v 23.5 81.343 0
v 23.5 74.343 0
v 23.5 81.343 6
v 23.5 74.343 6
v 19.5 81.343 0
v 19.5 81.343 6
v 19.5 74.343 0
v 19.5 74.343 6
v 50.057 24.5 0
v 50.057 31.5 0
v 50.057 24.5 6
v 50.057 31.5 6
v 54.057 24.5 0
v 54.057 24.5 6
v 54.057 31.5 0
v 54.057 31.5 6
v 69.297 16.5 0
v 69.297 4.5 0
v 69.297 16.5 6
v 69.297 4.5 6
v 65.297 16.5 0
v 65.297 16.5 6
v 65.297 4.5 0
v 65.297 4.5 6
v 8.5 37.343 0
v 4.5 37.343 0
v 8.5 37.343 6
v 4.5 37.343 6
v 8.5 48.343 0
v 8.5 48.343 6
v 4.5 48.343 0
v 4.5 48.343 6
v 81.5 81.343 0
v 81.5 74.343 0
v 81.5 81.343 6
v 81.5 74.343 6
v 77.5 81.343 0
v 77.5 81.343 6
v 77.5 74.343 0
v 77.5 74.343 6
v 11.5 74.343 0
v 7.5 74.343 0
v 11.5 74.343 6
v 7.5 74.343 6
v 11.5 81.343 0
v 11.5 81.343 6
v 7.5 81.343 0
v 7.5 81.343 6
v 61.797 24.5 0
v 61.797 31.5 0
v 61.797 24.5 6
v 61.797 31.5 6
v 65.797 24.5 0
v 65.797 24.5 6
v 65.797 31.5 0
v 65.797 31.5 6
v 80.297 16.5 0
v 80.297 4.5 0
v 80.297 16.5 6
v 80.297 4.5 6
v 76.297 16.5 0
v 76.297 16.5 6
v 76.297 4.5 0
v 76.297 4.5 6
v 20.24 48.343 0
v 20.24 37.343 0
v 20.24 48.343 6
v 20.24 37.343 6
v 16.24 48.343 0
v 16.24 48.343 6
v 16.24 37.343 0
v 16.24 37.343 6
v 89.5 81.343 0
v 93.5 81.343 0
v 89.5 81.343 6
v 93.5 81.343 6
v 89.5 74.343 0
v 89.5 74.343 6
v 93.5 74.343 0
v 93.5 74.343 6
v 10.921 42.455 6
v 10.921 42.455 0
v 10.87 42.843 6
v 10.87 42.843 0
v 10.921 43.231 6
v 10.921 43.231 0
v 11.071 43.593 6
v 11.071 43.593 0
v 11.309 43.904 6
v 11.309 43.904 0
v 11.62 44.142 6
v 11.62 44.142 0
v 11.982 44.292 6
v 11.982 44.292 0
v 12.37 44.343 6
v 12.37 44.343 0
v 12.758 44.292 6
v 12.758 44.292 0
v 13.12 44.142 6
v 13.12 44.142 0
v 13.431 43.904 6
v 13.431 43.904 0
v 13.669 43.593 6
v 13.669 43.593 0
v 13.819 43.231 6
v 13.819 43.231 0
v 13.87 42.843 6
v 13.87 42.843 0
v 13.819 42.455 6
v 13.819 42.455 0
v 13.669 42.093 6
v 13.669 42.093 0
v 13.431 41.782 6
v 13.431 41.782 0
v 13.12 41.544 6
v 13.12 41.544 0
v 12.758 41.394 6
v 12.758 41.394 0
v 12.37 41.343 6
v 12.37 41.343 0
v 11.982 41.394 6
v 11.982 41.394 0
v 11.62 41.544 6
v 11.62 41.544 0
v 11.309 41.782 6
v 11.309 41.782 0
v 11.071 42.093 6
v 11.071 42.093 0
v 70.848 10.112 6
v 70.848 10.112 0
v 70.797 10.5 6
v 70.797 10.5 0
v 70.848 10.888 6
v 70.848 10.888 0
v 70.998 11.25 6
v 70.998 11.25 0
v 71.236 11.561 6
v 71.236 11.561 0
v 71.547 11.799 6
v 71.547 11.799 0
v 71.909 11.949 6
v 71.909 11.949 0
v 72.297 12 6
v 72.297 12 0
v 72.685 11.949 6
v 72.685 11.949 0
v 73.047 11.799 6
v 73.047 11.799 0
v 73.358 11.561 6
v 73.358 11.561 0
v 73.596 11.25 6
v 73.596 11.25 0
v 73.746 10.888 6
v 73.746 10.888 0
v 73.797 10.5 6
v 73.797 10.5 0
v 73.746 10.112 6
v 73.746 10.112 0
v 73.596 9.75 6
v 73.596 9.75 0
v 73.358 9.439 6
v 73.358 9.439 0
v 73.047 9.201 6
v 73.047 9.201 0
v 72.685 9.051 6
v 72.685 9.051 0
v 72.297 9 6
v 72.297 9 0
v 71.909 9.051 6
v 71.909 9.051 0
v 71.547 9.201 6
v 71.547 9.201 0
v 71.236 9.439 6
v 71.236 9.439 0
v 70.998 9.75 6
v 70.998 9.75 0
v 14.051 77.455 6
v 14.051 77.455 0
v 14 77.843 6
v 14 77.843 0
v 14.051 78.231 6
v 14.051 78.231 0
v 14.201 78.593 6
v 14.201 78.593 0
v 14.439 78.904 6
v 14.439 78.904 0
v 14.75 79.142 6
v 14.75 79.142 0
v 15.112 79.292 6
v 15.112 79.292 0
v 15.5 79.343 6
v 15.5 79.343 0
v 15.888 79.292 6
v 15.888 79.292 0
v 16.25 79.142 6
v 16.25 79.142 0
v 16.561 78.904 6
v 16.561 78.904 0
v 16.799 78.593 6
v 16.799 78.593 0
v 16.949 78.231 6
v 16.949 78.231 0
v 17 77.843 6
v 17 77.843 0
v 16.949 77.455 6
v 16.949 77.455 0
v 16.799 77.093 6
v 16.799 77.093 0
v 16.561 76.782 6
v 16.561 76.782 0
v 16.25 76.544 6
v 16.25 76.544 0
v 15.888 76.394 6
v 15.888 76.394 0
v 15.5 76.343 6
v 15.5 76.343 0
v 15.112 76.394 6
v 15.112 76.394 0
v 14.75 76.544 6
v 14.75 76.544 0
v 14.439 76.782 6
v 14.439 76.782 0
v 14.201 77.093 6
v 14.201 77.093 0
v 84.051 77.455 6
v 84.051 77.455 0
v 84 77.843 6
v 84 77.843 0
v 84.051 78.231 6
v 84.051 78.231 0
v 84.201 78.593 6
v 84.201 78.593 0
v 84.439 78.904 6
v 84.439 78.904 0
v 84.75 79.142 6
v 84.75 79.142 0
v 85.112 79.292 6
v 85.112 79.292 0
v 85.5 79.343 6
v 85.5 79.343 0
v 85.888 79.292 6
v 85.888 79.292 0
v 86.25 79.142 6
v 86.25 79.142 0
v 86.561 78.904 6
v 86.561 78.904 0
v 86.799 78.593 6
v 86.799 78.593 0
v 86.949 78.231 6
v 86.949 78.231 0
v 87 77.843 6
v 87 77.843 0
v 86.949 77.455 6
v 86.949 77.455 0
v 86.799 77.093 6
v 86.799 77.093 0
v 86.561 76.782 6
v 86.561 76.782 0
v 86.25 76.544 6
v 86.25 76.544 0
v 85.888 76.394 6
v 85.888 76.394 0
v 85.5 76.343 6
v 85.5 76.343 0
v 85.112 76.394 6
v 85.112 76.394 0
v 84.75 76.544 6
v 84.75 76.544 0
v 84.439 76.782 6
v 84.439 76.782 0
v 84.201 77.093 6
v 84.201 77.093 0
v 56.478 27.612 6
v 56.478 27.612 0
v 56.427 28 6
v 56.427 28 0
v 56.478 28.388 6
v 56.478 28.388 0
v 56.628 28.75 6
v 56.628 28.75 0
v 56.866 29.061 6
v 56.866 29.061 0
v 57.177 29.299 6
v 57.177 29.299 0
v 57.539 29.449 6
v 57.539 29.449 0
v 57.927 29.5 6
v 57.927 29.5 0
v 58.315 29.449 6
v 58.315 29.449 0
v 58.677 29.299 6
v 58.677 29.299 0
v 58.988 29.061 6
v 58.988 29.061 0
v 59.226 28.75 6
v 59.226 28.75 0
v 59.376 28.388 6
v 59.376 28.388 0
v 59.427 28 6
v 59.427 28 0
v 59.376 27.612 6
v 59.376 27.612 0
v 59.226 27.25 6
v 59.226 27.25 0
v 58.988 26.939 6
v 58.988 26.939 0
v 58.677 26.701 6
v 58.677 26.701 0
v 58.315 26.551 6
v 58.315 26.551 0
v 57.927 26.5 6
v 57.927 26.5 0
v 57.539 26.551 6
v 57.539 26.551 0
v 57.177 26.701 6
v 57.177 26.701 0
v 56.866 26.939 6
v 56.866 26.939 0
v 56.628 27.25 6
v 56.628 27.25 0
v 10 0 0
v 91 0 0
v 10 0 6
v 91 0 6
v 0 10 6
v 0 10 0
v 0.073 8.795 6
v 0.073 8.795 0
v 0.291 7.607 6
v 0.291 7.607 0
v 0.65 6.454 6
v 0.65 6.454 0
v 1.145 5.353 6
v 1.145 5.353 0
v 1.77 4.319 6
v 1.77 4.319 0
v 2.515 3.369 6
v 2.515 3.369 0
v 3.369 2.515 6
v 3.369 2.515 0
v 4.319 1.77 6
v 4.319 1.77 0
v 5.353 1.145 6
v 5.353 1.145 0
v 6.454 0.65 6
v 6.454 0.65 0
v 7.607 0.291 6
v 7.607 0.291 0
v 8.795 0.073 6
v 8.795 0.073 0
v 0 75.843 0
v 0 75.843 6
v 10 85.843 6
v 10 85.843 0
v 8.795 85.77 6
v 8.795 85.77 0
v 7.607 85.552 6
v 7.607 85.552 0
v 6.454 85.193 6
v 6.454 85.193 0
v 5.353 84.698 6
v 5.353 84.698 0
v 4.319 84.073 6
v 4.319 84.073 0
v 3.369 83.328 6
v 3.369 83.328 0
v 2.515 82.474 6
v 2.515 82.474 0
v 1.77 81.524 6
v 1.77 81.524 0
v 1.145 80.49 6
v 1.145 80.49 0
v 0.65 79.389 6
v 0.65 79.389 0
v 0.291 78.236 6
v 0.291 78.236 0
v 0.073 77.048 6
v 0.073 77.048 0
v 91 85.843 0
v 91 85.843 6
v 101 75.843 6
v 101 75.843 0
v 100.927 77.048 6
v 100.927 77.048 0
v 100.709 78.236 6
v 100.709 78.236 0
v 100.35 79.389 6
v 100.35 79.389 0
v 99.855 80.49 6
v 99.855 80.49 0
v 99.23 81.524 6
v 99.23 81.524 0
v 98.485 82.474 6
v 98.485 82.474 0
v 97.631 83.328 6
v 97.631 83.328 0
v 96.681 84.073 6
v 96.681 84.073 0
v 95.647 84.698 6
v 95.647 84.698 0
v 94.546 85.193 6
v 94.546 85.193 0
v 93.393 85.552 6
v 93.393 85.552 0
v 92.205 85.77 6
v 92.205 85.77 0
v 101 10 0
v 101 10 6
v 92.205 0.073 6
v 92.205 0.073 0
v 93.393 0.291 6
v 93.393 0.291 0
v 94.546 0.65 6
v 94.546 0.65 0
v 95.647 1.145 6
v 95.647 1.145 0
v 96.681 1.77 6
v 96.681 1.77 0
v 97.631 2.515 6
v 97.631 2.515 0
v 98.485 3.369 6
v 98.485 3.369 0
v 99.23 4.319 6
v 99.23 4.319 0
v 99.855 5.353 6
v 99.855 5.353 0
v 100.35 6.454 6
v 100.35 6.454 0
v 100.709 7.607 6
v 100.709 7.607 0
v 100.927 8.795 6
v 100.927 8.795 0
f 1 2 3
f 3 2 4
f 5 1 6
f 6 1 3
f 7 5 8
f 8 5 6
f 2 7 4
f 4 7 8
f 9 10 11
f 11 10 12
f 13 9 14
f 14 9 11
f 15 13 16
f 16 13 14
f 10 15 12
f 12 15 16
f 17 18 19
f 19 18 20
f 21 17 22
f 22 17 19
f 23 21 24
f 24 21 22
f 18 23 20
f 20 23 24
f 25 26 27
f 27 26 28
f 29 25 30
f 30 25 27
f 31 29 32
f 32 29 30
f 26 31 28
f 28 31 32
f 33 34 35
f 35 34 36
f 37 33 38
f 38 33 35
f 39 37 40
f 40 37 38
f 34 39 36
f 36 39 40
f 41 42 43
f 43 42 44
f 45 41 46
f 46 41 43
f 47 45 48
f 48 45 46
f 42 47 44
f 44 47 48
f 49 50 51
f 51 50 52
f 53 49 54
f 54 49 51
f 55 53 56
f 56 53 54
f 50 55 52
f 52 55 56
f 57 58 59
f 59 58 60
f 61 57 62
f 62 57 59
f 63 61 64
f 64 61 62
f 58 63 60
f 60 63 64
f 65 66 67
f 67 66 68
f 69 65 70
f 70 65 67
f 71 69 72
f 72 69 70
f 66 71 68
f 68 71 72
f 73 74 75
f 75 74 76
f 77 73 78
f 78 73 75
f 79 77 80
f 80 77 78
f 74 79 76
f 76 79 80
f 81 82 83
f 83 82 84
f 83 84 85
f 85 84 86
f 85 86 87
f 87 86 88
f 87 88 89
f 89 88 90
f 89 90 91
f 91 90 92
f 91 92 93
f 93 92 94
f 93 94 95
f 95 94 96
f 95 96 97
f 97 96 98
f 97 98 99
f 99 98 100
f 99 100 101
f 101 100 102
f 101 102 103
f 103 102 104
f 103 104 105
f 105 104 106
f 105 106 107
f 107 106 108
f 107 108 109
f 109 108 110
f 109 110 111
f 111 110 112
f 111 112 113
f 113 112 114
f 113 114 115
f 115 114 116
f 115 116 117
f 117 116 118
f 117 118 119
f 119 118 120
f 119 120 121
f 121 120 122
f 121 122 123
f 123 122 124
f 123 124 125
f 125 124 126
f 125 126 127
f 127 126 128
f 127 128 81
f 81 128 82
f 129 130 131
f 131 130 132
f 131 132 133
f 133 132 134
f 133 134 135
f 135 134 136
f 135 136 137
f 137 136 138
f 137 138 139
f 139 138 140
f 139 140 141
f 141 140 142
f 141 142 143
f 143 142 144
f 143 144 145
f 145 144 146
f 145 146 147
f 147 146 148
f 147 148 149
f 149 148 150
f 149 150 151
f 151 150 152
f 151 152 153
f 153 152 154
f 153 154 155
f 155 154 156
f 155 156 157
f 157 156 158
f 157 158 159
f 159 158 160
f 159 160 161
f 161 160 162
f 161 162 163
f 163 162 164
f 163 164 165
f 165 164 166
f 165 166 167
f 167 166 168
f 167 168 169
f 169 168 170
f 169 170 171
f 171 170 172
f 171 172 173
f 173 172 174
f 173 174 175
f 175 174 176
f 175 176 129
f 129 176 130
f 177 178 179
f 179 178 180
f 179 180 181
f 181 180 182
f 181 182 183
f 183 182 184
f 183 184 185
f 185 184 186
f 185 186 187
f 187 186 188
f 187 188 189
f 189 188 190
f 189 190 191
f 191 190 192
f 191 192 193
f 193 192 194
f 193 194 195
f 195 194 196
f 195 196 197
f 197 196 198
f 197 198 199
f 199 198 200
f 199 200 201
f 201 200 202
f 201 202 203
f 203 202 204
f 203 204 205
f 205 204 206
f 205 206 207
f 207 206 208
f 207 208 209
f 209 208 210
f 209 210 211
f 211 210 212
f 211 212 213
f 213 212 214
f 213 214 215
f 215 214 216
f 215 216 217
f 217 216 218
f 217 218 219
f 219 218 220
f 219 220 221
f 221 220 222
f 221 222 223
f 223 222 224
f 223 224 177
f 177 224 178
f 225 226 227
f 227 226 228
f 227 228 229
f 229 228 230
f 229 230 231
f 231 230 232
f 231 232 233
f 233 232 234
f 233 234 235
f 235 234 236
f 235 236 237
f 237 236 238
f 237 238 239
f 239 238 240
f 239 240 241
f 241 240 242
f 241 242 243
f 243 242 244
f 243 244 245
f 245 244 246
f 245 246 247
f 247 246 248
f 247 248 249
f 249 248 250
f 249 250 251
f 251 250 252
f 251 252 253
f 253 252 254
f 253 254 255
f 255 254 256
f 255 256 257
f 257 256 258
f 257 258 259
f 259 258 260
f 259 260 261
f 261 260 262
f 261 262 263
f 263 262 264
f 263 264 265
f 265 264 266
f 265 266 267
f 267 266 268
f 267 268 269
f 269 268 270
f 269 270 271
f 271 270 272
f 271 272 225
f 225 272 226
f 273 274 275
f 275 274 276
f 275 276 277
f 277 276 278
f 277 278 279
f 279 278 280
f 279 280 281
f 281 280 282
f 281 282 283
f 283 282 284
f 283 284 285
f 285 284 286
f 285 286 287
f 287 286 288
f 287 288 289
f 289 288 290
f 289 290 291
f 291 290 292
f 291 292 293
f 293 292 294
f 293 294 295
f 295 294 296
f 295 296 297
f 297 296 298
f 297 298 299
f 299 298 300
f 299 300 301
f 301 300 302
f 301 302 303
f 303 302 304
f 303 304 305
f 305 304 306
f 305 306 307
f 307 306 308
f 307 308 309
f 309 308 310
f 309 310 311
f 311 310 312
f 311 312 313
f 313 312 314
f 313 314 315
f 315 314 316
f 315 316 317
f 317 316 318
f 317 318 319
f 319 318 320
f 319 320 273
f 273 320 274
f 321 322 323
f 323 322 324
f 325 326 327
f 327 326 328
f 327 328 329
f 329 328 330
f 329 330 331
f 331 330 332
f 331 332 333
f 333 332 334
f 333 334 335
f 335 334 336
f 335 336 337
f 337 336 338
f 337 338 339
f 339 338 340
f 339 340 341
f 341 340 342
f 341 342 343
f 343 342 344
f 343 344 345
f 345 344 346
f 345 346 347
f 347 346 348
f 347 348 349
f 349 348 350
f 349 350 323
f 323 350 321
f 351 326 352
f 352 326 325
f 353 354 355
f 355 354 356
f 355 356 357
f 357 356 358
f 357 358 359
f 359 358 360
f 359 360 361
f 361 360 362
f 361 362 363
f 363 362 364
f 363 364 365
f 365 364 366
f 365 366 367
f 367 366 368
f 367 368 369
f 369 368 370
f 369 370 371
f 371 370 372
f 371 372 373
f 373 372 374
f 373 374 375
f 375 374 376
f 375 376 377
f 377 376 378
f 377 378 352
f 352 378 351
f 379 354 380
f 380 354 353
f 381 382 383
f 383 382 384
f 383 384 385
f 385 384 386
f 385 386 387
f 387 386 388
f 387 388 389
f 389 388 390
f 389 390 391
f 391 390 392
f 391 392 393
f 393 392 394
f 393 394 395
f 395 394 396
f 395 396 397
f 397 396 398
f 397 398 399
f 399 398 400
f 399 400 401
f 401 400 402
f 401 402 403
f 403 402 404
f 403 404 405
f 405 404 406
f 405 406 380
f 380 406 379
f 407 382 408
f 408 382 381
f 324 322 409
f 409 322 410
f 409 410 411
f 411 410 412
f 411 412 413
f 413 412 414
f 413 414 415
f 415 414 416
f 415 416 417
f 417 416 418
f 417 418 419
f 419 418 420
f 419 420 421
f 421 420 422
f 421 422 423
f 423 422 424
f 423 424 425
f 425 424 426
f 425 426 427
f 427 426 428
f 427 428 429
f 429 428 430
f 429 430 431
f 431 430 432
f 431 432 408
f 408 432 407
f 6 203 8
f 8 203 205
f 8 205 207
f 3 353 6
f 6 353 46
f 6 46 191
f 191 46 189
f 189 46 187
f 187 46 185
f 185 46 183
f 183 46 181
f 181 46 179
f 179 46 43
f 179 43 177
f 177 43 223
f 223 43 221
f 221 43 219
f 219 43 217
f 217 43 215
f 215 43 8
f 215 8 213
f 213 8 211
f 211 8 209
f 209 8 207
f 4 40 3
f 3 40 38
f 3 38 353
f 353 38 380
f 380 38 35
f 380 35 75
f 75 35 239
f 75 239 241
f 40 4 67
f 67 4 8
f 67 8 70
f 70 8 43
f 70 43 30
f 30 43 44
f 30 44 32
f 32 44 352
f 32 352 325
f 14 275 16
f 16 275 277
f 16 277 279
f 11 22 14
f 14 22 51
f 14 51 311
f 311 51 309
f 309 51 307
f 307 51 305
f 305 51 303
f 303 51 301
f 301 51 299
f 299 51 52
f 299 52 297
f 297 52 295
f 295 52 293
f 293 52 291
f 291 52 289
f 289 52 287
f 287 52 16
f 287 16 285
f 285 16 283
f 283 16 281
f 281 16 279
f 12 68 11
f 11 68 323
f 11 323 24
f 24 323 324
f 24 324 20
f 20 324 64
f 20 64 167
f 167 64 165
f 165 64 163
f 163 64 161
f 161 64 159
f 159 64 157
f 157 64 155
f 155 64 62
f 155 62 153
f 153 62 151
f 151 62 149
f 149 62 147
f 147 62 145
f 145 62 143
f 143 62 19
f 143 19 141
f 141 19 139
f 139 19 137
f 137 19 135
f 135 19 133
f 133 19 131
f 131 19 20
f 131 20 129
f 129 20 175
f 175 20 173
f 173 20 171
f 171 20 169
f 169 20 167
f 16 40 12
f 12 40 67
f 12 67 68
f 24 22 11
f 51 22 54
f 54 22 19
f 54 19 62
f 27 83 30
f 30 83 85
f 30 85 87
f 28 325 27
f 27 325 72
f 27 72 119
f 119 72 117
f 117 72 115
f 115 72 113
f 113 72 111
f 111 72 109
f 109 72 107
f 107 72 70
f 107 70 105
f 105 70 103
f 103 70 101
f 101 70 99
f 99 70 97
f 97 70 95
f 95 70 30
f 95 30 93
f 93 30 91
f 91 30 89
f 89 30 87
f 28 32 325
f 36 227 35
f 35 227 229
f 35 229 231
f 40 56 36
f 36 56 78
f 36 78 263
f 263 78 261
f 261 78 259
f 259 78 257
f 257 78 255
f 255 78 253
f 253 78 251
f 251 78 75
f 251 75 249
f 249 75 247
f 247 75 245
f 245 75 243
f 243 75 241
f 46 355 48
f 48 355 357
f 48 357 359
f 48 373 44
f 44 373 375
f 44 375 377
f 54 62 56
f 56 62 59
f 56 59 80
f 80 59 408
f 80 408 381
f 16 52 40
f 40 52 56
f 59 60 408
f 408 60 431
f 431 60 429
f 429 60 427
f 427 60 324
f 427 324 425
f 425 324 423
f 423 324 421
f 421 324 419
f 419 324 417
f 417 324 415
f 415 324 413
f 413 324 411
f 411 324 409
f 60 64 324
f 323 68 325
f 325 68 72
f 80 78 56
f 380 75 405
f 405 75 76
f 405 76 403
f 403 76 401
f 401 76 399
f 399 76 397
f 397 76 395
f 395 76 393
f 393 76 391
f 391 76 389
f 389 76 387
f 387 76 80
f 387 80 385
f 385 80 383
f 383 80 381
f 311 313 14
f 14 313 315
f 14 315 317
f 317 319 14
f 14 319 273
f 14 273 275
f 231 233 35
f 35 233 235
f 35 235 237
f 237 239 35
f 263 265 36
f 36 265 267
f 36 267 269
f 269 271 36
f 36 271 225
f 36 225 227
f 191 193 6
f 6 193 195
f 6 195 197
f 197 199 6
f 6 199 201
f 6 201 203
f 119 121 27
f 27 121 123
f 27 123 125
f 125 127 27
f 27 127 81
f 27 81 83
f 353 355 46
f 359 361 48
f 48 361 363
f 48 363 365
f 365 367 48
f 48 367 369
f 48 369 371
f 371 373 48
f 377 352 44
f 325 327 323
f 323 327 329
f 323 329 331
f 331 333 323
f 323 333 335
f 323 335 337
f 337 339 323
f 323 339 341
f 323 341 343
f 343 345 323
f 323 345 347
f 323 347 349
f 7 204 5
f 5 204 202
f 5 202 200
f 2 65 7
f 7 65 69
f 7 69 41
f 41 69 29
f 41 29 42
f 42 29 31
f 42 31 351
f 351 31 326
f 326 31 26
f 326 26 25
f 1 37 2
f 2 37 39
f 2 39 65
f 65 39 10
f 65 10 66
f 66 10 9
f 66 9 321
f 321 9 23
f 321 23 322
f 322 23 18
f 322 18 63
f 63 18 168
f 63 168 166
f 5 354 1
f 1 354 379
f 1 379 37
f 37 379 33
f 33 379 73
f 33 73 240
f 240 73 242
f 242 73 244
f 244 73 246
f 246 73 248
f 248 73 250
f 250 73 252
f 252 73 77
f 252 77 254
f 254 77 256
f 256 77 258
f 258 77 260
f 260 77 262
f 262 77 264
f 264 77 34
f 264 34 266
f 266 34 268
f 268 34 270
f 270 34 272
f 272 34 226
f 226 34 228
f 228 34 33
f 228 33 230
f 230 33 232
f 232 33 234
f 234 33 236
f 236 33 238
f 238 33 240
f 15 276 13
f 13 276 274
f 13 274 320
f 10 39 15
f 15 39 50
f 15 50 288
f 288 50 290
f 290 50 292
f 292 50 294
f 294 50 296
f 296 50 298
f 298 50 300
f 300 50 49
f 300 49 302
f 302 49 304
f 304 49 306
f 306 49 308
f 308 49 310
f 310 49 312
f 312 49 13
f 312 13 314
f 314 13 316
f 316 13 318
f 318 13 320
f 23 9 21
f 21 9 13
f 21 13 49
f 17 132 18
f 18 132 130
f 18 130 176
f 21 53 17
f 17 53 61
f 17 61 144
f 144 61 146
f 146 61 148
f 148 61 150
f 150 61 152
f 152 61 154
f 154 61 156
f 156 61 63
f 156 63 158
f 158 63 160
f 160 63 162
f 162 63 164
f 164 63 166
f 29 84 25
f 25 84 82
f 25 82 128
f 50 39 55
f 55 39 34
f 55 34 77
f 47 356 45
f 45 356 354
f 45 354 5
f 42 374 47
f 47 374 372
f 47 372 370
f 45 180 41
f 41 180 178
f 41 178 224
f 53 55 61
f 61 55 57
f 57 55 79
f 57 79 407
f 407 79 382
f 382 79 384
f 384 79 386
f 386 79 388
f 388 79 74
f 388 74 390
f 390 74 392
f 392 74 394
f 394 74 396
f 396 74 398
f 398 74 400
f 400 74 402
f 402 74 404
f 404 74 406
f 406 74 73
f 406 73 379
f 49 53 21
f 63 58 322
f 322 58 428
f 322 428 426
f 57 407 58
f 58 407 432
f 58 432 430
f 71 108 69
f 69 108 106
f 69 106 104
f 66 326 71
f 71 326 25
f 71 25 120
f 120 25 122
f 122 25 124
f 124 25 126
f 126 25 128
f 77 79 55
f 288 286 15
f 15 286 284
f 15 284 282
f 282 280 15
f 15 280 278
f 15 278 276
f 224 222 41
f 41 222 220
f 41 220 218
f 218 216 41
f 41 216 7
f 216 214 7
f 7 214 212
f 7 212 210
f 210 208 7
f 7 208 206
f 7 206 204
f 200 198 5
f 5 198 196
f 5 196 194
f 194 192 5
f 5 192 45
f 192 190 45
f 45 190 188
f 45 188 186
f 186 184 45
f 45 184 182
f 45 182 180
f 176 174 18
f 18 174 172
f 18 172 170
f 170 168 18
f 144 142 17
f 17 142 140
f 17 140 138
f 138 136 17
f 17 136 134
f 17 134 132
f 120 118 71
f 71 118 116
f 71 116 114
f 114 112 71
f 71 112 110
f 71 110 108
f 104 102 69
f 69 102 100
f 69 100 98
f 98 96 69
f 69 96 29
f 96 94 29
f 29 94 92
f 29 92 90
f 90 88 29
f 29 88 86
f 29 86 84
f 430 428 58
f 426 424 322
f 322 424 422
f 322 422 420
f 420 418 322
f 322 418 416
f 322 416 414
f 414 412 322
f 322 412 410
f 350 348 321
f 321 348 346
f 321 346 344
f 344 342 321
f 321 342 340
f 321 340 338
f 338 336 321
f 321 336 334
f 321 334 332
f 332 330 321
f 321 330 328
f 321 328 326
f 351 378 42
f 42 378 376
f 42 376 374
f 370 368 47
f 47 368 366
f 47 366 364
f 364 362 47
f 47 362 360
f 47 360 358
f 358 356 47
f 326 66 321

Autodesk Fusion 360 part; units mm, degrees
sketch "Sketch1" plane through (0, 0, 0) normal (0, 0, 1) x (1, 0, 0)
  line L0 (10, 0) -> (91, 0)
  line L1 (101, 10) -> (101, 75.843)
  line L2 (91, 85.843) -> (10, 85.843)
  line L3 (0, 75.843) -> (0, 10)
  line L4 (8, 80.843) -> (23, 80.843)
  line L5 (23, 80.843) -> (23, 74.843)
  line L6 (23, 74.843) -> (8, 74.843)
  line L7 (8, 74.843) -> (8, 80.843)
  line L8 (23, 80.843) -> (78, 80.843)
  line L9 (78, 80.843) -> (93, 80.843)
  line L10 (93, 80.843) -> (93, 74.843)
  line L11 (93, 74.843) -> (78, 74.843)
  line L12 (78, 74.843) -> (78, 80.843)
  line L13 (11, 80.843) -> (11, 74.843)
  line L14 (20, 80.843) -> (20, 74.843)
  line L15 (90, 80.843) -> (90, 74.843)
  line L16 (81, 74.843) -> (81, 80.843)
  line L17 (50.5, 85.843) -> (50.5, 80.843)
  line L18 (5, 47.843) -> (19.74, 47.843)
  line L19 (19.74, 47.843) -> (19.74, 37.843)
  line L20 (19.74, 37.843) -> (5, 37.843)
  line L21 (5, 37.843) -> (5, 47.843)
  line L22 (5, 47.843) -> (8, 47.843)
  line L23 (8, 47.843) -> (8, 37.843)
  line L24 (8, 37.843) -> (5, 37.843)
  line L25 (5, 37.843) -> (5, 47.843)
  line L26 (19.74, 37.843) -> (16.74, 37.843)
  line L27 (16.74, 37.843) -> (16.74, 47.843)
  line L28 (16.74, 47.843) -> (19.74, 47.843)
  line L29 (19.74, 47.843) -> (19.74, 37.843)
  line L30 (50.557, 31) -> (65.297, 31)
  line L31 (65.297, 31) -> (65.297, 25)
  line L32 (65.297, 25) -> (50.557, 25)
  line L33 (50.557, 25) -> (50.557, 31)
  line L34 (50.557, 31) -> (53.557, 31)
  line L35 (53.557, 31) -> (53.557, 25)
  line L36 (53.557, 25) -> (50.557, 25)
  line L37 (50.557, 25) -> (50.557, 31)
  line L38 (65.297, 25) -> (62.297, 25)
  line L39 (62.297, 25) -> (62.297, 31)
  line L40 (62.297, 31) -> (65.297, 31)
  line L41 (65.297, 31) -> (65.297, 25)
  line L42 (65.797, 16) -> (79.797, 16)
  line L43 (79.797, 16) -> (79.797, 5)
  line L44 (79.797, 5) -> (65.797, 5)
  line L45 (65.797, 5) -> (65.797, 16)
  line L46 (68.797, 16) -> (68.797, 5)
  line L47 (76.797, 5) -> (76.797, 16)
  arc A0 (10, 85.843) -> (0, 75.843) centre (10, 75.843) ccw
  arc A1 (101, 75.843) -> (91, 85.843) centre (91, 75.843) ccw
  arc A2 (0, 10) -> (10, 0) centre (10, 10) ccw
  arc A3 (91, 0) -> (101, 10) centre (91, 10) ccw
  line L48 (11, 77.843) -> (20, 77.843)
  line L49 (8, 42.843) -> (16.74, 42.843)
  line L50 (81, 77.843) -> (90, 77.843)
  line L51 (53.557, 28) -> (62.297, 28)
  line L52 (68.797, 10.5) -> (76.797, 10.5)
  circle A4 centre (72.297, 10.5) radius 1.5
  circle A5 centre (57.927, 28) radius 1.5
  circle A6 centre (12.37, 42.843) radius 1.5
  circle A7 centre (15.5, 77.843) radius 1.5
  circle A8 centre (85.5, 77.843) radius 1.5
  circle A9 centre (72.297, 10.5) radius 3.5
  dimension "d1" = 6
  dimension "d2" = 6
  dimension "d3" = 15
  dimension "d4" = 15
  dimension "d5" = 55
  dimension "d6" = 3
  dimension "d7" = 3
  dimension "d8" = 3
  dimension "d9" = 3
  dimension "d10" = 90
  dimension "d11" = 5
  dimension "d12" = 14.74
  dimension "d13" = 10
  dimension "d14" = 3
  dimension "d15" = 3
  dimension "d16" = 27
  dimension "d17" = 3
  dimension "d18" = 14.74
  dimension "d19" = 6
  dimension "d20" = 3
  dimension "d21" = 3
  dimension "d22" = 6.843
  dimension "d23" = 30.817
  dimension "d24" = 14
  dimension "d25" = 11
  dimension "d26" = 3
  dimension "d27" = 3
  dimension "d28" = 0.5
  dimension "d29" = 9
  dimension "d30" = 5
  dimension "d31" = 8
  dimension "d32" = 8
  dimension "d33" = 5
  dimension "d34" = 10
  dimension "d35" = 10
  dimension "d36" = 10
  dimension "d37" = 10
  dimension "d38" = 7
  dimension "d39" = 3
  dimension "d40" = 3
  dimension "d41" = 3
  dimension "d42" = 3
  dimension "d43" = 3
extrude "Extrude1" add sketch "Sketch1" along normal blind 6 contours L0 L1 L2 L3 A0 A1 A2 A3 | L4 L13 L14 L48 A7 | L9 L15 L16 L50 A8 | L6 L13 L14 L48 A7 | L11 L15 L16 L50 A8 | L18 L23 L27 L49 A6 | L20 L23 L27 L49 A6 | L30 L35 L39 L51 A5 | L32 L35 L39 L51 A5 | L42 L46 L47 L52 A9 | L44 L46 L47 L52 A9 | L52 A4 A9 | L52 A4 A9
sketch "Sketch2" plane through (0, 0, 6) normal (0, 0, 1) x (-1, 0, 0)
  line L0 (-8, -80.843) -> (-11, -80.843)
  line L1 (-11, -80.843) -> (-11, -74.843)
  line L2 (-11, -74.843) -> (-8, -74.843)
  line L3 (-8, -74.843) -> (-8, -80.843)
  line L4 (-16.74, -47.843) -> (-19.74, -47.843)
  line L5 (-19.74, -47.843) -> (-19.74, -37.843)
  line L6 (-19.74, -37.843) -> (-16.74, -37.843)
  line L7 (-16.74, -37.843) -> (-16.74, -47.843)
  line L8 (-65.797, -16) -> (-68.797, -16)
  line L9 (-68.797, -16) -> (-68.797, -5)
  line L10 (-68.797, -5) -> (-65.797, -5)
  line L11 (-65.797, -5) -> (-65.797, -16)
  circle A0 centre (-57.927, -28) radius 1.5
  line L12 (-81, -74.843) -> (-78, -74.843)
  line L13 (-78, -74.843) -> (-78, -80.843)
  line L14 (-78, -80.843) -> (-81, -80.843)
  line L15 (-81, -80.843) -> (-81, -74.843)
  circle A1 centre (-85.5, -77.843) radius 1.5
  line L16 (-90, -80.843) -> (-93, -80.843)
  line L17 (-93, -80.843) -> (-93, -74.843)
  line L18 (-93, -74.843) -> (-90, -74.843)
  line L19 (-90, -74.843) -> (-90, -80.843)
  circle A2 centre (-15.5, -77.843) radius 1.5
  line L20 (-20, -80.843) -> (-23, -80.843)
  line L21 (-23, -80.843) -> (-23, -74.843)
  line L22 (-23, -74.843) -> (-20, -74.843)
  line L23 (-20, -74.843) -> (-20, -80.843)
  line L24 (-53.557, -25) -> (-50.557, -25)
  line L25 (-50.557, -25) -> (-50.557, -31)
  line L26 (-50.557, -31) -> (-53.557, -31)
  line L27 (-53.557, -31) -> (-53.557, -25)
  line L28 (-8, -37.843) -> (-5, -37.843)
  line L29 (-5, -37.843) -> (-5, -47.843)
  line L30 (-5, -47.843) -> (-8, -47.843)
  line L31 (-8, -47.843) -> (-8, -37.843)
  circle A3 centre (-72.297, -10.5) radius 1.5
  circle A4 centre (-12.37, -42.843) radius 1.5
  line L32 (-62.297, -31) -> (-65.297, -31)
  line L33 (-65.297, -31) -> (-65.297, -25)
  line L34 (-65.297, -25) -> (-62.297, -25)
  line L35 (-62.297, -25) -> (-62.297, -31)
  line L36 (-79.797, -5) -> (-76.797, -5)
  line L37 (-76.797, -5) -> (-76.797, -16)
  line L38 (-76.797, -16) -> (-79.797, -16)
  line L39 (-79.797, -16) -> (-79.797, -5)
  arc A5 (-91, 0) -> (-101, -10) centre (-91, -10) ccw
  line L40 (-101, -10) -> (-101, -75.843)
  arc A6 (-101, -75.843) -> (-91, -85.843) centre (-91, -75.843) ccw
  line L41 (-91, -85.843) -> (-10, -85.843)
  arc A7 (-10, -85.843) -> (0, -75.843) centre (-10, -75.843) ccw
  line L42 (0, -75.843) -> (0, -10)
  arc A8 (0, -10) -> (-10, 0) centre (-10, -10) ccw
  line L43 (-10, 0) -> (-91, 0)
  line L44 (-7.5, -74.343) -> (-7.5, -81.343)
  line L45 (-7.5, -81.343) -> (-11.5, -81.343)
  line L46 (-11.5, -81.343) -> (-11.5, -74.343)
  line L47 (-11.5, -74.343) -> (-7.5, -74.343)
  line L48 (-23.5, -74.343) -> (-19.5, -74.343)
  line L49 (-19.5, -74.343) -> (-19.5, -81.343)
  line L50 (-19.5, -81.343) -> (-23.5, -81.343)
  line L51 (-23.5, -81.343) -> (-23.5, -74.343)
  line L52 (-81.5, -74.343) -> (-77.5, -74.343)
  line L53 (-77.5, -74.343) -> (-77.5, -81.343)
  line L54 (-77.5, -81.343) -> (-81.5, -81.343)
  line L55 (-81.5, -81.343) -> (-81.5, -74.343)
  line L56 (-93.5, -81.343) -> (-93.5, -74.343)
  line L57 (-93.5, -74.343) -> (-89.5, -74.343)
  line L58 (-89.5, -74.343) -> (-89.5, -81.343)
  line L59 (-89.5, -81.343) -> (-93.5, -81.343)
  line L60 (-4.5, -37.343) -> (-4.5, -48.343)
  line L61 (-4.5, -48.343) -> (-8.5, -48.343)
  line L62 (-8.5, -48.343) -> (-8.5, -37.343)
  line L63 (-8.5, -37.343) -> (-4.5, -37.343)
  line L64 (-20.24, -37.343) -> (-16.24, -37.343)
  line L65 (-16.24, -37.343) -> (-16.24, -48.343)
  line L66 (-16.24, -48.343) -> (-20.24, -48.343)
  line L67 (-20.24, -48.343) -> (-20.24, -37.343)
  line L68 (-50.057, -31.5) -> (-54.057, -31.5)
  line L69 (-54.057, -31.5) -> (-54.057, -24.5)
  line L70 (-54.057, -24.5) -> (-50.057, -24.5)
  line L71 (-50.057, -24.5) -> (-50.057, -31.5)
  line L72 (-61.797, -31.5) -> (-65.797, -31.5)
  line L73 (-65.797, -31.5) -> (-65.797, -24.5)
  line L74 (-65.797, -24.5) -> (-61.797, -24.5)
  line L75 (-61.797, -24.5) -> (-61.797, -31.5)
  line L76 (-69.297, -4.5) -> (-65.297, -4.5)
  line L77 (-65.297, -4.5) -> (-65.297, -16.5)
  line L78 (-65.297, -16.5) -> (-69.297, -16.5)
  line L79 (-69.297, -16.5) -> (-69.297, -4.5)
  line L80 (-80.297, -4.5) -> (-76.297, -4.5)
  line L81 (-76.297, -4.5) -> (-76.297, -16.5)
  line L82 (-76.297, -16.5) -> (-80.297, -16.5)
  line L83 (-80.297, -16.5) -> (-80.297, -4.5)
  dimension "d46" = -0.5
  dimension "d47" = -0.5
  dimension "d48" = -0.5
  dimension "d49" = -0.5
  dimension "d50" = -0.5
  dimension "d51" = -0.5
  dimension "d52" = -0.5
  dimension "d53" = -0.5
  dimension "d54" = -0.5
  dimension "d55" = -0.5
extrude "Extrude2" cut sketch "Sketch2" against normal blind 10 contours L44 L45 L46 L47 | L48 L49 L50 L51 | L52 L53 L54 L55 | L56 L57 L58 L59 | L60 L61 L62 L63 | L64 L65 L66 L67 | L68 L69 L70 L71 | L72 L73 L74 L75 | L76 L77 L78 L79 | L80 L81 L82 L83
